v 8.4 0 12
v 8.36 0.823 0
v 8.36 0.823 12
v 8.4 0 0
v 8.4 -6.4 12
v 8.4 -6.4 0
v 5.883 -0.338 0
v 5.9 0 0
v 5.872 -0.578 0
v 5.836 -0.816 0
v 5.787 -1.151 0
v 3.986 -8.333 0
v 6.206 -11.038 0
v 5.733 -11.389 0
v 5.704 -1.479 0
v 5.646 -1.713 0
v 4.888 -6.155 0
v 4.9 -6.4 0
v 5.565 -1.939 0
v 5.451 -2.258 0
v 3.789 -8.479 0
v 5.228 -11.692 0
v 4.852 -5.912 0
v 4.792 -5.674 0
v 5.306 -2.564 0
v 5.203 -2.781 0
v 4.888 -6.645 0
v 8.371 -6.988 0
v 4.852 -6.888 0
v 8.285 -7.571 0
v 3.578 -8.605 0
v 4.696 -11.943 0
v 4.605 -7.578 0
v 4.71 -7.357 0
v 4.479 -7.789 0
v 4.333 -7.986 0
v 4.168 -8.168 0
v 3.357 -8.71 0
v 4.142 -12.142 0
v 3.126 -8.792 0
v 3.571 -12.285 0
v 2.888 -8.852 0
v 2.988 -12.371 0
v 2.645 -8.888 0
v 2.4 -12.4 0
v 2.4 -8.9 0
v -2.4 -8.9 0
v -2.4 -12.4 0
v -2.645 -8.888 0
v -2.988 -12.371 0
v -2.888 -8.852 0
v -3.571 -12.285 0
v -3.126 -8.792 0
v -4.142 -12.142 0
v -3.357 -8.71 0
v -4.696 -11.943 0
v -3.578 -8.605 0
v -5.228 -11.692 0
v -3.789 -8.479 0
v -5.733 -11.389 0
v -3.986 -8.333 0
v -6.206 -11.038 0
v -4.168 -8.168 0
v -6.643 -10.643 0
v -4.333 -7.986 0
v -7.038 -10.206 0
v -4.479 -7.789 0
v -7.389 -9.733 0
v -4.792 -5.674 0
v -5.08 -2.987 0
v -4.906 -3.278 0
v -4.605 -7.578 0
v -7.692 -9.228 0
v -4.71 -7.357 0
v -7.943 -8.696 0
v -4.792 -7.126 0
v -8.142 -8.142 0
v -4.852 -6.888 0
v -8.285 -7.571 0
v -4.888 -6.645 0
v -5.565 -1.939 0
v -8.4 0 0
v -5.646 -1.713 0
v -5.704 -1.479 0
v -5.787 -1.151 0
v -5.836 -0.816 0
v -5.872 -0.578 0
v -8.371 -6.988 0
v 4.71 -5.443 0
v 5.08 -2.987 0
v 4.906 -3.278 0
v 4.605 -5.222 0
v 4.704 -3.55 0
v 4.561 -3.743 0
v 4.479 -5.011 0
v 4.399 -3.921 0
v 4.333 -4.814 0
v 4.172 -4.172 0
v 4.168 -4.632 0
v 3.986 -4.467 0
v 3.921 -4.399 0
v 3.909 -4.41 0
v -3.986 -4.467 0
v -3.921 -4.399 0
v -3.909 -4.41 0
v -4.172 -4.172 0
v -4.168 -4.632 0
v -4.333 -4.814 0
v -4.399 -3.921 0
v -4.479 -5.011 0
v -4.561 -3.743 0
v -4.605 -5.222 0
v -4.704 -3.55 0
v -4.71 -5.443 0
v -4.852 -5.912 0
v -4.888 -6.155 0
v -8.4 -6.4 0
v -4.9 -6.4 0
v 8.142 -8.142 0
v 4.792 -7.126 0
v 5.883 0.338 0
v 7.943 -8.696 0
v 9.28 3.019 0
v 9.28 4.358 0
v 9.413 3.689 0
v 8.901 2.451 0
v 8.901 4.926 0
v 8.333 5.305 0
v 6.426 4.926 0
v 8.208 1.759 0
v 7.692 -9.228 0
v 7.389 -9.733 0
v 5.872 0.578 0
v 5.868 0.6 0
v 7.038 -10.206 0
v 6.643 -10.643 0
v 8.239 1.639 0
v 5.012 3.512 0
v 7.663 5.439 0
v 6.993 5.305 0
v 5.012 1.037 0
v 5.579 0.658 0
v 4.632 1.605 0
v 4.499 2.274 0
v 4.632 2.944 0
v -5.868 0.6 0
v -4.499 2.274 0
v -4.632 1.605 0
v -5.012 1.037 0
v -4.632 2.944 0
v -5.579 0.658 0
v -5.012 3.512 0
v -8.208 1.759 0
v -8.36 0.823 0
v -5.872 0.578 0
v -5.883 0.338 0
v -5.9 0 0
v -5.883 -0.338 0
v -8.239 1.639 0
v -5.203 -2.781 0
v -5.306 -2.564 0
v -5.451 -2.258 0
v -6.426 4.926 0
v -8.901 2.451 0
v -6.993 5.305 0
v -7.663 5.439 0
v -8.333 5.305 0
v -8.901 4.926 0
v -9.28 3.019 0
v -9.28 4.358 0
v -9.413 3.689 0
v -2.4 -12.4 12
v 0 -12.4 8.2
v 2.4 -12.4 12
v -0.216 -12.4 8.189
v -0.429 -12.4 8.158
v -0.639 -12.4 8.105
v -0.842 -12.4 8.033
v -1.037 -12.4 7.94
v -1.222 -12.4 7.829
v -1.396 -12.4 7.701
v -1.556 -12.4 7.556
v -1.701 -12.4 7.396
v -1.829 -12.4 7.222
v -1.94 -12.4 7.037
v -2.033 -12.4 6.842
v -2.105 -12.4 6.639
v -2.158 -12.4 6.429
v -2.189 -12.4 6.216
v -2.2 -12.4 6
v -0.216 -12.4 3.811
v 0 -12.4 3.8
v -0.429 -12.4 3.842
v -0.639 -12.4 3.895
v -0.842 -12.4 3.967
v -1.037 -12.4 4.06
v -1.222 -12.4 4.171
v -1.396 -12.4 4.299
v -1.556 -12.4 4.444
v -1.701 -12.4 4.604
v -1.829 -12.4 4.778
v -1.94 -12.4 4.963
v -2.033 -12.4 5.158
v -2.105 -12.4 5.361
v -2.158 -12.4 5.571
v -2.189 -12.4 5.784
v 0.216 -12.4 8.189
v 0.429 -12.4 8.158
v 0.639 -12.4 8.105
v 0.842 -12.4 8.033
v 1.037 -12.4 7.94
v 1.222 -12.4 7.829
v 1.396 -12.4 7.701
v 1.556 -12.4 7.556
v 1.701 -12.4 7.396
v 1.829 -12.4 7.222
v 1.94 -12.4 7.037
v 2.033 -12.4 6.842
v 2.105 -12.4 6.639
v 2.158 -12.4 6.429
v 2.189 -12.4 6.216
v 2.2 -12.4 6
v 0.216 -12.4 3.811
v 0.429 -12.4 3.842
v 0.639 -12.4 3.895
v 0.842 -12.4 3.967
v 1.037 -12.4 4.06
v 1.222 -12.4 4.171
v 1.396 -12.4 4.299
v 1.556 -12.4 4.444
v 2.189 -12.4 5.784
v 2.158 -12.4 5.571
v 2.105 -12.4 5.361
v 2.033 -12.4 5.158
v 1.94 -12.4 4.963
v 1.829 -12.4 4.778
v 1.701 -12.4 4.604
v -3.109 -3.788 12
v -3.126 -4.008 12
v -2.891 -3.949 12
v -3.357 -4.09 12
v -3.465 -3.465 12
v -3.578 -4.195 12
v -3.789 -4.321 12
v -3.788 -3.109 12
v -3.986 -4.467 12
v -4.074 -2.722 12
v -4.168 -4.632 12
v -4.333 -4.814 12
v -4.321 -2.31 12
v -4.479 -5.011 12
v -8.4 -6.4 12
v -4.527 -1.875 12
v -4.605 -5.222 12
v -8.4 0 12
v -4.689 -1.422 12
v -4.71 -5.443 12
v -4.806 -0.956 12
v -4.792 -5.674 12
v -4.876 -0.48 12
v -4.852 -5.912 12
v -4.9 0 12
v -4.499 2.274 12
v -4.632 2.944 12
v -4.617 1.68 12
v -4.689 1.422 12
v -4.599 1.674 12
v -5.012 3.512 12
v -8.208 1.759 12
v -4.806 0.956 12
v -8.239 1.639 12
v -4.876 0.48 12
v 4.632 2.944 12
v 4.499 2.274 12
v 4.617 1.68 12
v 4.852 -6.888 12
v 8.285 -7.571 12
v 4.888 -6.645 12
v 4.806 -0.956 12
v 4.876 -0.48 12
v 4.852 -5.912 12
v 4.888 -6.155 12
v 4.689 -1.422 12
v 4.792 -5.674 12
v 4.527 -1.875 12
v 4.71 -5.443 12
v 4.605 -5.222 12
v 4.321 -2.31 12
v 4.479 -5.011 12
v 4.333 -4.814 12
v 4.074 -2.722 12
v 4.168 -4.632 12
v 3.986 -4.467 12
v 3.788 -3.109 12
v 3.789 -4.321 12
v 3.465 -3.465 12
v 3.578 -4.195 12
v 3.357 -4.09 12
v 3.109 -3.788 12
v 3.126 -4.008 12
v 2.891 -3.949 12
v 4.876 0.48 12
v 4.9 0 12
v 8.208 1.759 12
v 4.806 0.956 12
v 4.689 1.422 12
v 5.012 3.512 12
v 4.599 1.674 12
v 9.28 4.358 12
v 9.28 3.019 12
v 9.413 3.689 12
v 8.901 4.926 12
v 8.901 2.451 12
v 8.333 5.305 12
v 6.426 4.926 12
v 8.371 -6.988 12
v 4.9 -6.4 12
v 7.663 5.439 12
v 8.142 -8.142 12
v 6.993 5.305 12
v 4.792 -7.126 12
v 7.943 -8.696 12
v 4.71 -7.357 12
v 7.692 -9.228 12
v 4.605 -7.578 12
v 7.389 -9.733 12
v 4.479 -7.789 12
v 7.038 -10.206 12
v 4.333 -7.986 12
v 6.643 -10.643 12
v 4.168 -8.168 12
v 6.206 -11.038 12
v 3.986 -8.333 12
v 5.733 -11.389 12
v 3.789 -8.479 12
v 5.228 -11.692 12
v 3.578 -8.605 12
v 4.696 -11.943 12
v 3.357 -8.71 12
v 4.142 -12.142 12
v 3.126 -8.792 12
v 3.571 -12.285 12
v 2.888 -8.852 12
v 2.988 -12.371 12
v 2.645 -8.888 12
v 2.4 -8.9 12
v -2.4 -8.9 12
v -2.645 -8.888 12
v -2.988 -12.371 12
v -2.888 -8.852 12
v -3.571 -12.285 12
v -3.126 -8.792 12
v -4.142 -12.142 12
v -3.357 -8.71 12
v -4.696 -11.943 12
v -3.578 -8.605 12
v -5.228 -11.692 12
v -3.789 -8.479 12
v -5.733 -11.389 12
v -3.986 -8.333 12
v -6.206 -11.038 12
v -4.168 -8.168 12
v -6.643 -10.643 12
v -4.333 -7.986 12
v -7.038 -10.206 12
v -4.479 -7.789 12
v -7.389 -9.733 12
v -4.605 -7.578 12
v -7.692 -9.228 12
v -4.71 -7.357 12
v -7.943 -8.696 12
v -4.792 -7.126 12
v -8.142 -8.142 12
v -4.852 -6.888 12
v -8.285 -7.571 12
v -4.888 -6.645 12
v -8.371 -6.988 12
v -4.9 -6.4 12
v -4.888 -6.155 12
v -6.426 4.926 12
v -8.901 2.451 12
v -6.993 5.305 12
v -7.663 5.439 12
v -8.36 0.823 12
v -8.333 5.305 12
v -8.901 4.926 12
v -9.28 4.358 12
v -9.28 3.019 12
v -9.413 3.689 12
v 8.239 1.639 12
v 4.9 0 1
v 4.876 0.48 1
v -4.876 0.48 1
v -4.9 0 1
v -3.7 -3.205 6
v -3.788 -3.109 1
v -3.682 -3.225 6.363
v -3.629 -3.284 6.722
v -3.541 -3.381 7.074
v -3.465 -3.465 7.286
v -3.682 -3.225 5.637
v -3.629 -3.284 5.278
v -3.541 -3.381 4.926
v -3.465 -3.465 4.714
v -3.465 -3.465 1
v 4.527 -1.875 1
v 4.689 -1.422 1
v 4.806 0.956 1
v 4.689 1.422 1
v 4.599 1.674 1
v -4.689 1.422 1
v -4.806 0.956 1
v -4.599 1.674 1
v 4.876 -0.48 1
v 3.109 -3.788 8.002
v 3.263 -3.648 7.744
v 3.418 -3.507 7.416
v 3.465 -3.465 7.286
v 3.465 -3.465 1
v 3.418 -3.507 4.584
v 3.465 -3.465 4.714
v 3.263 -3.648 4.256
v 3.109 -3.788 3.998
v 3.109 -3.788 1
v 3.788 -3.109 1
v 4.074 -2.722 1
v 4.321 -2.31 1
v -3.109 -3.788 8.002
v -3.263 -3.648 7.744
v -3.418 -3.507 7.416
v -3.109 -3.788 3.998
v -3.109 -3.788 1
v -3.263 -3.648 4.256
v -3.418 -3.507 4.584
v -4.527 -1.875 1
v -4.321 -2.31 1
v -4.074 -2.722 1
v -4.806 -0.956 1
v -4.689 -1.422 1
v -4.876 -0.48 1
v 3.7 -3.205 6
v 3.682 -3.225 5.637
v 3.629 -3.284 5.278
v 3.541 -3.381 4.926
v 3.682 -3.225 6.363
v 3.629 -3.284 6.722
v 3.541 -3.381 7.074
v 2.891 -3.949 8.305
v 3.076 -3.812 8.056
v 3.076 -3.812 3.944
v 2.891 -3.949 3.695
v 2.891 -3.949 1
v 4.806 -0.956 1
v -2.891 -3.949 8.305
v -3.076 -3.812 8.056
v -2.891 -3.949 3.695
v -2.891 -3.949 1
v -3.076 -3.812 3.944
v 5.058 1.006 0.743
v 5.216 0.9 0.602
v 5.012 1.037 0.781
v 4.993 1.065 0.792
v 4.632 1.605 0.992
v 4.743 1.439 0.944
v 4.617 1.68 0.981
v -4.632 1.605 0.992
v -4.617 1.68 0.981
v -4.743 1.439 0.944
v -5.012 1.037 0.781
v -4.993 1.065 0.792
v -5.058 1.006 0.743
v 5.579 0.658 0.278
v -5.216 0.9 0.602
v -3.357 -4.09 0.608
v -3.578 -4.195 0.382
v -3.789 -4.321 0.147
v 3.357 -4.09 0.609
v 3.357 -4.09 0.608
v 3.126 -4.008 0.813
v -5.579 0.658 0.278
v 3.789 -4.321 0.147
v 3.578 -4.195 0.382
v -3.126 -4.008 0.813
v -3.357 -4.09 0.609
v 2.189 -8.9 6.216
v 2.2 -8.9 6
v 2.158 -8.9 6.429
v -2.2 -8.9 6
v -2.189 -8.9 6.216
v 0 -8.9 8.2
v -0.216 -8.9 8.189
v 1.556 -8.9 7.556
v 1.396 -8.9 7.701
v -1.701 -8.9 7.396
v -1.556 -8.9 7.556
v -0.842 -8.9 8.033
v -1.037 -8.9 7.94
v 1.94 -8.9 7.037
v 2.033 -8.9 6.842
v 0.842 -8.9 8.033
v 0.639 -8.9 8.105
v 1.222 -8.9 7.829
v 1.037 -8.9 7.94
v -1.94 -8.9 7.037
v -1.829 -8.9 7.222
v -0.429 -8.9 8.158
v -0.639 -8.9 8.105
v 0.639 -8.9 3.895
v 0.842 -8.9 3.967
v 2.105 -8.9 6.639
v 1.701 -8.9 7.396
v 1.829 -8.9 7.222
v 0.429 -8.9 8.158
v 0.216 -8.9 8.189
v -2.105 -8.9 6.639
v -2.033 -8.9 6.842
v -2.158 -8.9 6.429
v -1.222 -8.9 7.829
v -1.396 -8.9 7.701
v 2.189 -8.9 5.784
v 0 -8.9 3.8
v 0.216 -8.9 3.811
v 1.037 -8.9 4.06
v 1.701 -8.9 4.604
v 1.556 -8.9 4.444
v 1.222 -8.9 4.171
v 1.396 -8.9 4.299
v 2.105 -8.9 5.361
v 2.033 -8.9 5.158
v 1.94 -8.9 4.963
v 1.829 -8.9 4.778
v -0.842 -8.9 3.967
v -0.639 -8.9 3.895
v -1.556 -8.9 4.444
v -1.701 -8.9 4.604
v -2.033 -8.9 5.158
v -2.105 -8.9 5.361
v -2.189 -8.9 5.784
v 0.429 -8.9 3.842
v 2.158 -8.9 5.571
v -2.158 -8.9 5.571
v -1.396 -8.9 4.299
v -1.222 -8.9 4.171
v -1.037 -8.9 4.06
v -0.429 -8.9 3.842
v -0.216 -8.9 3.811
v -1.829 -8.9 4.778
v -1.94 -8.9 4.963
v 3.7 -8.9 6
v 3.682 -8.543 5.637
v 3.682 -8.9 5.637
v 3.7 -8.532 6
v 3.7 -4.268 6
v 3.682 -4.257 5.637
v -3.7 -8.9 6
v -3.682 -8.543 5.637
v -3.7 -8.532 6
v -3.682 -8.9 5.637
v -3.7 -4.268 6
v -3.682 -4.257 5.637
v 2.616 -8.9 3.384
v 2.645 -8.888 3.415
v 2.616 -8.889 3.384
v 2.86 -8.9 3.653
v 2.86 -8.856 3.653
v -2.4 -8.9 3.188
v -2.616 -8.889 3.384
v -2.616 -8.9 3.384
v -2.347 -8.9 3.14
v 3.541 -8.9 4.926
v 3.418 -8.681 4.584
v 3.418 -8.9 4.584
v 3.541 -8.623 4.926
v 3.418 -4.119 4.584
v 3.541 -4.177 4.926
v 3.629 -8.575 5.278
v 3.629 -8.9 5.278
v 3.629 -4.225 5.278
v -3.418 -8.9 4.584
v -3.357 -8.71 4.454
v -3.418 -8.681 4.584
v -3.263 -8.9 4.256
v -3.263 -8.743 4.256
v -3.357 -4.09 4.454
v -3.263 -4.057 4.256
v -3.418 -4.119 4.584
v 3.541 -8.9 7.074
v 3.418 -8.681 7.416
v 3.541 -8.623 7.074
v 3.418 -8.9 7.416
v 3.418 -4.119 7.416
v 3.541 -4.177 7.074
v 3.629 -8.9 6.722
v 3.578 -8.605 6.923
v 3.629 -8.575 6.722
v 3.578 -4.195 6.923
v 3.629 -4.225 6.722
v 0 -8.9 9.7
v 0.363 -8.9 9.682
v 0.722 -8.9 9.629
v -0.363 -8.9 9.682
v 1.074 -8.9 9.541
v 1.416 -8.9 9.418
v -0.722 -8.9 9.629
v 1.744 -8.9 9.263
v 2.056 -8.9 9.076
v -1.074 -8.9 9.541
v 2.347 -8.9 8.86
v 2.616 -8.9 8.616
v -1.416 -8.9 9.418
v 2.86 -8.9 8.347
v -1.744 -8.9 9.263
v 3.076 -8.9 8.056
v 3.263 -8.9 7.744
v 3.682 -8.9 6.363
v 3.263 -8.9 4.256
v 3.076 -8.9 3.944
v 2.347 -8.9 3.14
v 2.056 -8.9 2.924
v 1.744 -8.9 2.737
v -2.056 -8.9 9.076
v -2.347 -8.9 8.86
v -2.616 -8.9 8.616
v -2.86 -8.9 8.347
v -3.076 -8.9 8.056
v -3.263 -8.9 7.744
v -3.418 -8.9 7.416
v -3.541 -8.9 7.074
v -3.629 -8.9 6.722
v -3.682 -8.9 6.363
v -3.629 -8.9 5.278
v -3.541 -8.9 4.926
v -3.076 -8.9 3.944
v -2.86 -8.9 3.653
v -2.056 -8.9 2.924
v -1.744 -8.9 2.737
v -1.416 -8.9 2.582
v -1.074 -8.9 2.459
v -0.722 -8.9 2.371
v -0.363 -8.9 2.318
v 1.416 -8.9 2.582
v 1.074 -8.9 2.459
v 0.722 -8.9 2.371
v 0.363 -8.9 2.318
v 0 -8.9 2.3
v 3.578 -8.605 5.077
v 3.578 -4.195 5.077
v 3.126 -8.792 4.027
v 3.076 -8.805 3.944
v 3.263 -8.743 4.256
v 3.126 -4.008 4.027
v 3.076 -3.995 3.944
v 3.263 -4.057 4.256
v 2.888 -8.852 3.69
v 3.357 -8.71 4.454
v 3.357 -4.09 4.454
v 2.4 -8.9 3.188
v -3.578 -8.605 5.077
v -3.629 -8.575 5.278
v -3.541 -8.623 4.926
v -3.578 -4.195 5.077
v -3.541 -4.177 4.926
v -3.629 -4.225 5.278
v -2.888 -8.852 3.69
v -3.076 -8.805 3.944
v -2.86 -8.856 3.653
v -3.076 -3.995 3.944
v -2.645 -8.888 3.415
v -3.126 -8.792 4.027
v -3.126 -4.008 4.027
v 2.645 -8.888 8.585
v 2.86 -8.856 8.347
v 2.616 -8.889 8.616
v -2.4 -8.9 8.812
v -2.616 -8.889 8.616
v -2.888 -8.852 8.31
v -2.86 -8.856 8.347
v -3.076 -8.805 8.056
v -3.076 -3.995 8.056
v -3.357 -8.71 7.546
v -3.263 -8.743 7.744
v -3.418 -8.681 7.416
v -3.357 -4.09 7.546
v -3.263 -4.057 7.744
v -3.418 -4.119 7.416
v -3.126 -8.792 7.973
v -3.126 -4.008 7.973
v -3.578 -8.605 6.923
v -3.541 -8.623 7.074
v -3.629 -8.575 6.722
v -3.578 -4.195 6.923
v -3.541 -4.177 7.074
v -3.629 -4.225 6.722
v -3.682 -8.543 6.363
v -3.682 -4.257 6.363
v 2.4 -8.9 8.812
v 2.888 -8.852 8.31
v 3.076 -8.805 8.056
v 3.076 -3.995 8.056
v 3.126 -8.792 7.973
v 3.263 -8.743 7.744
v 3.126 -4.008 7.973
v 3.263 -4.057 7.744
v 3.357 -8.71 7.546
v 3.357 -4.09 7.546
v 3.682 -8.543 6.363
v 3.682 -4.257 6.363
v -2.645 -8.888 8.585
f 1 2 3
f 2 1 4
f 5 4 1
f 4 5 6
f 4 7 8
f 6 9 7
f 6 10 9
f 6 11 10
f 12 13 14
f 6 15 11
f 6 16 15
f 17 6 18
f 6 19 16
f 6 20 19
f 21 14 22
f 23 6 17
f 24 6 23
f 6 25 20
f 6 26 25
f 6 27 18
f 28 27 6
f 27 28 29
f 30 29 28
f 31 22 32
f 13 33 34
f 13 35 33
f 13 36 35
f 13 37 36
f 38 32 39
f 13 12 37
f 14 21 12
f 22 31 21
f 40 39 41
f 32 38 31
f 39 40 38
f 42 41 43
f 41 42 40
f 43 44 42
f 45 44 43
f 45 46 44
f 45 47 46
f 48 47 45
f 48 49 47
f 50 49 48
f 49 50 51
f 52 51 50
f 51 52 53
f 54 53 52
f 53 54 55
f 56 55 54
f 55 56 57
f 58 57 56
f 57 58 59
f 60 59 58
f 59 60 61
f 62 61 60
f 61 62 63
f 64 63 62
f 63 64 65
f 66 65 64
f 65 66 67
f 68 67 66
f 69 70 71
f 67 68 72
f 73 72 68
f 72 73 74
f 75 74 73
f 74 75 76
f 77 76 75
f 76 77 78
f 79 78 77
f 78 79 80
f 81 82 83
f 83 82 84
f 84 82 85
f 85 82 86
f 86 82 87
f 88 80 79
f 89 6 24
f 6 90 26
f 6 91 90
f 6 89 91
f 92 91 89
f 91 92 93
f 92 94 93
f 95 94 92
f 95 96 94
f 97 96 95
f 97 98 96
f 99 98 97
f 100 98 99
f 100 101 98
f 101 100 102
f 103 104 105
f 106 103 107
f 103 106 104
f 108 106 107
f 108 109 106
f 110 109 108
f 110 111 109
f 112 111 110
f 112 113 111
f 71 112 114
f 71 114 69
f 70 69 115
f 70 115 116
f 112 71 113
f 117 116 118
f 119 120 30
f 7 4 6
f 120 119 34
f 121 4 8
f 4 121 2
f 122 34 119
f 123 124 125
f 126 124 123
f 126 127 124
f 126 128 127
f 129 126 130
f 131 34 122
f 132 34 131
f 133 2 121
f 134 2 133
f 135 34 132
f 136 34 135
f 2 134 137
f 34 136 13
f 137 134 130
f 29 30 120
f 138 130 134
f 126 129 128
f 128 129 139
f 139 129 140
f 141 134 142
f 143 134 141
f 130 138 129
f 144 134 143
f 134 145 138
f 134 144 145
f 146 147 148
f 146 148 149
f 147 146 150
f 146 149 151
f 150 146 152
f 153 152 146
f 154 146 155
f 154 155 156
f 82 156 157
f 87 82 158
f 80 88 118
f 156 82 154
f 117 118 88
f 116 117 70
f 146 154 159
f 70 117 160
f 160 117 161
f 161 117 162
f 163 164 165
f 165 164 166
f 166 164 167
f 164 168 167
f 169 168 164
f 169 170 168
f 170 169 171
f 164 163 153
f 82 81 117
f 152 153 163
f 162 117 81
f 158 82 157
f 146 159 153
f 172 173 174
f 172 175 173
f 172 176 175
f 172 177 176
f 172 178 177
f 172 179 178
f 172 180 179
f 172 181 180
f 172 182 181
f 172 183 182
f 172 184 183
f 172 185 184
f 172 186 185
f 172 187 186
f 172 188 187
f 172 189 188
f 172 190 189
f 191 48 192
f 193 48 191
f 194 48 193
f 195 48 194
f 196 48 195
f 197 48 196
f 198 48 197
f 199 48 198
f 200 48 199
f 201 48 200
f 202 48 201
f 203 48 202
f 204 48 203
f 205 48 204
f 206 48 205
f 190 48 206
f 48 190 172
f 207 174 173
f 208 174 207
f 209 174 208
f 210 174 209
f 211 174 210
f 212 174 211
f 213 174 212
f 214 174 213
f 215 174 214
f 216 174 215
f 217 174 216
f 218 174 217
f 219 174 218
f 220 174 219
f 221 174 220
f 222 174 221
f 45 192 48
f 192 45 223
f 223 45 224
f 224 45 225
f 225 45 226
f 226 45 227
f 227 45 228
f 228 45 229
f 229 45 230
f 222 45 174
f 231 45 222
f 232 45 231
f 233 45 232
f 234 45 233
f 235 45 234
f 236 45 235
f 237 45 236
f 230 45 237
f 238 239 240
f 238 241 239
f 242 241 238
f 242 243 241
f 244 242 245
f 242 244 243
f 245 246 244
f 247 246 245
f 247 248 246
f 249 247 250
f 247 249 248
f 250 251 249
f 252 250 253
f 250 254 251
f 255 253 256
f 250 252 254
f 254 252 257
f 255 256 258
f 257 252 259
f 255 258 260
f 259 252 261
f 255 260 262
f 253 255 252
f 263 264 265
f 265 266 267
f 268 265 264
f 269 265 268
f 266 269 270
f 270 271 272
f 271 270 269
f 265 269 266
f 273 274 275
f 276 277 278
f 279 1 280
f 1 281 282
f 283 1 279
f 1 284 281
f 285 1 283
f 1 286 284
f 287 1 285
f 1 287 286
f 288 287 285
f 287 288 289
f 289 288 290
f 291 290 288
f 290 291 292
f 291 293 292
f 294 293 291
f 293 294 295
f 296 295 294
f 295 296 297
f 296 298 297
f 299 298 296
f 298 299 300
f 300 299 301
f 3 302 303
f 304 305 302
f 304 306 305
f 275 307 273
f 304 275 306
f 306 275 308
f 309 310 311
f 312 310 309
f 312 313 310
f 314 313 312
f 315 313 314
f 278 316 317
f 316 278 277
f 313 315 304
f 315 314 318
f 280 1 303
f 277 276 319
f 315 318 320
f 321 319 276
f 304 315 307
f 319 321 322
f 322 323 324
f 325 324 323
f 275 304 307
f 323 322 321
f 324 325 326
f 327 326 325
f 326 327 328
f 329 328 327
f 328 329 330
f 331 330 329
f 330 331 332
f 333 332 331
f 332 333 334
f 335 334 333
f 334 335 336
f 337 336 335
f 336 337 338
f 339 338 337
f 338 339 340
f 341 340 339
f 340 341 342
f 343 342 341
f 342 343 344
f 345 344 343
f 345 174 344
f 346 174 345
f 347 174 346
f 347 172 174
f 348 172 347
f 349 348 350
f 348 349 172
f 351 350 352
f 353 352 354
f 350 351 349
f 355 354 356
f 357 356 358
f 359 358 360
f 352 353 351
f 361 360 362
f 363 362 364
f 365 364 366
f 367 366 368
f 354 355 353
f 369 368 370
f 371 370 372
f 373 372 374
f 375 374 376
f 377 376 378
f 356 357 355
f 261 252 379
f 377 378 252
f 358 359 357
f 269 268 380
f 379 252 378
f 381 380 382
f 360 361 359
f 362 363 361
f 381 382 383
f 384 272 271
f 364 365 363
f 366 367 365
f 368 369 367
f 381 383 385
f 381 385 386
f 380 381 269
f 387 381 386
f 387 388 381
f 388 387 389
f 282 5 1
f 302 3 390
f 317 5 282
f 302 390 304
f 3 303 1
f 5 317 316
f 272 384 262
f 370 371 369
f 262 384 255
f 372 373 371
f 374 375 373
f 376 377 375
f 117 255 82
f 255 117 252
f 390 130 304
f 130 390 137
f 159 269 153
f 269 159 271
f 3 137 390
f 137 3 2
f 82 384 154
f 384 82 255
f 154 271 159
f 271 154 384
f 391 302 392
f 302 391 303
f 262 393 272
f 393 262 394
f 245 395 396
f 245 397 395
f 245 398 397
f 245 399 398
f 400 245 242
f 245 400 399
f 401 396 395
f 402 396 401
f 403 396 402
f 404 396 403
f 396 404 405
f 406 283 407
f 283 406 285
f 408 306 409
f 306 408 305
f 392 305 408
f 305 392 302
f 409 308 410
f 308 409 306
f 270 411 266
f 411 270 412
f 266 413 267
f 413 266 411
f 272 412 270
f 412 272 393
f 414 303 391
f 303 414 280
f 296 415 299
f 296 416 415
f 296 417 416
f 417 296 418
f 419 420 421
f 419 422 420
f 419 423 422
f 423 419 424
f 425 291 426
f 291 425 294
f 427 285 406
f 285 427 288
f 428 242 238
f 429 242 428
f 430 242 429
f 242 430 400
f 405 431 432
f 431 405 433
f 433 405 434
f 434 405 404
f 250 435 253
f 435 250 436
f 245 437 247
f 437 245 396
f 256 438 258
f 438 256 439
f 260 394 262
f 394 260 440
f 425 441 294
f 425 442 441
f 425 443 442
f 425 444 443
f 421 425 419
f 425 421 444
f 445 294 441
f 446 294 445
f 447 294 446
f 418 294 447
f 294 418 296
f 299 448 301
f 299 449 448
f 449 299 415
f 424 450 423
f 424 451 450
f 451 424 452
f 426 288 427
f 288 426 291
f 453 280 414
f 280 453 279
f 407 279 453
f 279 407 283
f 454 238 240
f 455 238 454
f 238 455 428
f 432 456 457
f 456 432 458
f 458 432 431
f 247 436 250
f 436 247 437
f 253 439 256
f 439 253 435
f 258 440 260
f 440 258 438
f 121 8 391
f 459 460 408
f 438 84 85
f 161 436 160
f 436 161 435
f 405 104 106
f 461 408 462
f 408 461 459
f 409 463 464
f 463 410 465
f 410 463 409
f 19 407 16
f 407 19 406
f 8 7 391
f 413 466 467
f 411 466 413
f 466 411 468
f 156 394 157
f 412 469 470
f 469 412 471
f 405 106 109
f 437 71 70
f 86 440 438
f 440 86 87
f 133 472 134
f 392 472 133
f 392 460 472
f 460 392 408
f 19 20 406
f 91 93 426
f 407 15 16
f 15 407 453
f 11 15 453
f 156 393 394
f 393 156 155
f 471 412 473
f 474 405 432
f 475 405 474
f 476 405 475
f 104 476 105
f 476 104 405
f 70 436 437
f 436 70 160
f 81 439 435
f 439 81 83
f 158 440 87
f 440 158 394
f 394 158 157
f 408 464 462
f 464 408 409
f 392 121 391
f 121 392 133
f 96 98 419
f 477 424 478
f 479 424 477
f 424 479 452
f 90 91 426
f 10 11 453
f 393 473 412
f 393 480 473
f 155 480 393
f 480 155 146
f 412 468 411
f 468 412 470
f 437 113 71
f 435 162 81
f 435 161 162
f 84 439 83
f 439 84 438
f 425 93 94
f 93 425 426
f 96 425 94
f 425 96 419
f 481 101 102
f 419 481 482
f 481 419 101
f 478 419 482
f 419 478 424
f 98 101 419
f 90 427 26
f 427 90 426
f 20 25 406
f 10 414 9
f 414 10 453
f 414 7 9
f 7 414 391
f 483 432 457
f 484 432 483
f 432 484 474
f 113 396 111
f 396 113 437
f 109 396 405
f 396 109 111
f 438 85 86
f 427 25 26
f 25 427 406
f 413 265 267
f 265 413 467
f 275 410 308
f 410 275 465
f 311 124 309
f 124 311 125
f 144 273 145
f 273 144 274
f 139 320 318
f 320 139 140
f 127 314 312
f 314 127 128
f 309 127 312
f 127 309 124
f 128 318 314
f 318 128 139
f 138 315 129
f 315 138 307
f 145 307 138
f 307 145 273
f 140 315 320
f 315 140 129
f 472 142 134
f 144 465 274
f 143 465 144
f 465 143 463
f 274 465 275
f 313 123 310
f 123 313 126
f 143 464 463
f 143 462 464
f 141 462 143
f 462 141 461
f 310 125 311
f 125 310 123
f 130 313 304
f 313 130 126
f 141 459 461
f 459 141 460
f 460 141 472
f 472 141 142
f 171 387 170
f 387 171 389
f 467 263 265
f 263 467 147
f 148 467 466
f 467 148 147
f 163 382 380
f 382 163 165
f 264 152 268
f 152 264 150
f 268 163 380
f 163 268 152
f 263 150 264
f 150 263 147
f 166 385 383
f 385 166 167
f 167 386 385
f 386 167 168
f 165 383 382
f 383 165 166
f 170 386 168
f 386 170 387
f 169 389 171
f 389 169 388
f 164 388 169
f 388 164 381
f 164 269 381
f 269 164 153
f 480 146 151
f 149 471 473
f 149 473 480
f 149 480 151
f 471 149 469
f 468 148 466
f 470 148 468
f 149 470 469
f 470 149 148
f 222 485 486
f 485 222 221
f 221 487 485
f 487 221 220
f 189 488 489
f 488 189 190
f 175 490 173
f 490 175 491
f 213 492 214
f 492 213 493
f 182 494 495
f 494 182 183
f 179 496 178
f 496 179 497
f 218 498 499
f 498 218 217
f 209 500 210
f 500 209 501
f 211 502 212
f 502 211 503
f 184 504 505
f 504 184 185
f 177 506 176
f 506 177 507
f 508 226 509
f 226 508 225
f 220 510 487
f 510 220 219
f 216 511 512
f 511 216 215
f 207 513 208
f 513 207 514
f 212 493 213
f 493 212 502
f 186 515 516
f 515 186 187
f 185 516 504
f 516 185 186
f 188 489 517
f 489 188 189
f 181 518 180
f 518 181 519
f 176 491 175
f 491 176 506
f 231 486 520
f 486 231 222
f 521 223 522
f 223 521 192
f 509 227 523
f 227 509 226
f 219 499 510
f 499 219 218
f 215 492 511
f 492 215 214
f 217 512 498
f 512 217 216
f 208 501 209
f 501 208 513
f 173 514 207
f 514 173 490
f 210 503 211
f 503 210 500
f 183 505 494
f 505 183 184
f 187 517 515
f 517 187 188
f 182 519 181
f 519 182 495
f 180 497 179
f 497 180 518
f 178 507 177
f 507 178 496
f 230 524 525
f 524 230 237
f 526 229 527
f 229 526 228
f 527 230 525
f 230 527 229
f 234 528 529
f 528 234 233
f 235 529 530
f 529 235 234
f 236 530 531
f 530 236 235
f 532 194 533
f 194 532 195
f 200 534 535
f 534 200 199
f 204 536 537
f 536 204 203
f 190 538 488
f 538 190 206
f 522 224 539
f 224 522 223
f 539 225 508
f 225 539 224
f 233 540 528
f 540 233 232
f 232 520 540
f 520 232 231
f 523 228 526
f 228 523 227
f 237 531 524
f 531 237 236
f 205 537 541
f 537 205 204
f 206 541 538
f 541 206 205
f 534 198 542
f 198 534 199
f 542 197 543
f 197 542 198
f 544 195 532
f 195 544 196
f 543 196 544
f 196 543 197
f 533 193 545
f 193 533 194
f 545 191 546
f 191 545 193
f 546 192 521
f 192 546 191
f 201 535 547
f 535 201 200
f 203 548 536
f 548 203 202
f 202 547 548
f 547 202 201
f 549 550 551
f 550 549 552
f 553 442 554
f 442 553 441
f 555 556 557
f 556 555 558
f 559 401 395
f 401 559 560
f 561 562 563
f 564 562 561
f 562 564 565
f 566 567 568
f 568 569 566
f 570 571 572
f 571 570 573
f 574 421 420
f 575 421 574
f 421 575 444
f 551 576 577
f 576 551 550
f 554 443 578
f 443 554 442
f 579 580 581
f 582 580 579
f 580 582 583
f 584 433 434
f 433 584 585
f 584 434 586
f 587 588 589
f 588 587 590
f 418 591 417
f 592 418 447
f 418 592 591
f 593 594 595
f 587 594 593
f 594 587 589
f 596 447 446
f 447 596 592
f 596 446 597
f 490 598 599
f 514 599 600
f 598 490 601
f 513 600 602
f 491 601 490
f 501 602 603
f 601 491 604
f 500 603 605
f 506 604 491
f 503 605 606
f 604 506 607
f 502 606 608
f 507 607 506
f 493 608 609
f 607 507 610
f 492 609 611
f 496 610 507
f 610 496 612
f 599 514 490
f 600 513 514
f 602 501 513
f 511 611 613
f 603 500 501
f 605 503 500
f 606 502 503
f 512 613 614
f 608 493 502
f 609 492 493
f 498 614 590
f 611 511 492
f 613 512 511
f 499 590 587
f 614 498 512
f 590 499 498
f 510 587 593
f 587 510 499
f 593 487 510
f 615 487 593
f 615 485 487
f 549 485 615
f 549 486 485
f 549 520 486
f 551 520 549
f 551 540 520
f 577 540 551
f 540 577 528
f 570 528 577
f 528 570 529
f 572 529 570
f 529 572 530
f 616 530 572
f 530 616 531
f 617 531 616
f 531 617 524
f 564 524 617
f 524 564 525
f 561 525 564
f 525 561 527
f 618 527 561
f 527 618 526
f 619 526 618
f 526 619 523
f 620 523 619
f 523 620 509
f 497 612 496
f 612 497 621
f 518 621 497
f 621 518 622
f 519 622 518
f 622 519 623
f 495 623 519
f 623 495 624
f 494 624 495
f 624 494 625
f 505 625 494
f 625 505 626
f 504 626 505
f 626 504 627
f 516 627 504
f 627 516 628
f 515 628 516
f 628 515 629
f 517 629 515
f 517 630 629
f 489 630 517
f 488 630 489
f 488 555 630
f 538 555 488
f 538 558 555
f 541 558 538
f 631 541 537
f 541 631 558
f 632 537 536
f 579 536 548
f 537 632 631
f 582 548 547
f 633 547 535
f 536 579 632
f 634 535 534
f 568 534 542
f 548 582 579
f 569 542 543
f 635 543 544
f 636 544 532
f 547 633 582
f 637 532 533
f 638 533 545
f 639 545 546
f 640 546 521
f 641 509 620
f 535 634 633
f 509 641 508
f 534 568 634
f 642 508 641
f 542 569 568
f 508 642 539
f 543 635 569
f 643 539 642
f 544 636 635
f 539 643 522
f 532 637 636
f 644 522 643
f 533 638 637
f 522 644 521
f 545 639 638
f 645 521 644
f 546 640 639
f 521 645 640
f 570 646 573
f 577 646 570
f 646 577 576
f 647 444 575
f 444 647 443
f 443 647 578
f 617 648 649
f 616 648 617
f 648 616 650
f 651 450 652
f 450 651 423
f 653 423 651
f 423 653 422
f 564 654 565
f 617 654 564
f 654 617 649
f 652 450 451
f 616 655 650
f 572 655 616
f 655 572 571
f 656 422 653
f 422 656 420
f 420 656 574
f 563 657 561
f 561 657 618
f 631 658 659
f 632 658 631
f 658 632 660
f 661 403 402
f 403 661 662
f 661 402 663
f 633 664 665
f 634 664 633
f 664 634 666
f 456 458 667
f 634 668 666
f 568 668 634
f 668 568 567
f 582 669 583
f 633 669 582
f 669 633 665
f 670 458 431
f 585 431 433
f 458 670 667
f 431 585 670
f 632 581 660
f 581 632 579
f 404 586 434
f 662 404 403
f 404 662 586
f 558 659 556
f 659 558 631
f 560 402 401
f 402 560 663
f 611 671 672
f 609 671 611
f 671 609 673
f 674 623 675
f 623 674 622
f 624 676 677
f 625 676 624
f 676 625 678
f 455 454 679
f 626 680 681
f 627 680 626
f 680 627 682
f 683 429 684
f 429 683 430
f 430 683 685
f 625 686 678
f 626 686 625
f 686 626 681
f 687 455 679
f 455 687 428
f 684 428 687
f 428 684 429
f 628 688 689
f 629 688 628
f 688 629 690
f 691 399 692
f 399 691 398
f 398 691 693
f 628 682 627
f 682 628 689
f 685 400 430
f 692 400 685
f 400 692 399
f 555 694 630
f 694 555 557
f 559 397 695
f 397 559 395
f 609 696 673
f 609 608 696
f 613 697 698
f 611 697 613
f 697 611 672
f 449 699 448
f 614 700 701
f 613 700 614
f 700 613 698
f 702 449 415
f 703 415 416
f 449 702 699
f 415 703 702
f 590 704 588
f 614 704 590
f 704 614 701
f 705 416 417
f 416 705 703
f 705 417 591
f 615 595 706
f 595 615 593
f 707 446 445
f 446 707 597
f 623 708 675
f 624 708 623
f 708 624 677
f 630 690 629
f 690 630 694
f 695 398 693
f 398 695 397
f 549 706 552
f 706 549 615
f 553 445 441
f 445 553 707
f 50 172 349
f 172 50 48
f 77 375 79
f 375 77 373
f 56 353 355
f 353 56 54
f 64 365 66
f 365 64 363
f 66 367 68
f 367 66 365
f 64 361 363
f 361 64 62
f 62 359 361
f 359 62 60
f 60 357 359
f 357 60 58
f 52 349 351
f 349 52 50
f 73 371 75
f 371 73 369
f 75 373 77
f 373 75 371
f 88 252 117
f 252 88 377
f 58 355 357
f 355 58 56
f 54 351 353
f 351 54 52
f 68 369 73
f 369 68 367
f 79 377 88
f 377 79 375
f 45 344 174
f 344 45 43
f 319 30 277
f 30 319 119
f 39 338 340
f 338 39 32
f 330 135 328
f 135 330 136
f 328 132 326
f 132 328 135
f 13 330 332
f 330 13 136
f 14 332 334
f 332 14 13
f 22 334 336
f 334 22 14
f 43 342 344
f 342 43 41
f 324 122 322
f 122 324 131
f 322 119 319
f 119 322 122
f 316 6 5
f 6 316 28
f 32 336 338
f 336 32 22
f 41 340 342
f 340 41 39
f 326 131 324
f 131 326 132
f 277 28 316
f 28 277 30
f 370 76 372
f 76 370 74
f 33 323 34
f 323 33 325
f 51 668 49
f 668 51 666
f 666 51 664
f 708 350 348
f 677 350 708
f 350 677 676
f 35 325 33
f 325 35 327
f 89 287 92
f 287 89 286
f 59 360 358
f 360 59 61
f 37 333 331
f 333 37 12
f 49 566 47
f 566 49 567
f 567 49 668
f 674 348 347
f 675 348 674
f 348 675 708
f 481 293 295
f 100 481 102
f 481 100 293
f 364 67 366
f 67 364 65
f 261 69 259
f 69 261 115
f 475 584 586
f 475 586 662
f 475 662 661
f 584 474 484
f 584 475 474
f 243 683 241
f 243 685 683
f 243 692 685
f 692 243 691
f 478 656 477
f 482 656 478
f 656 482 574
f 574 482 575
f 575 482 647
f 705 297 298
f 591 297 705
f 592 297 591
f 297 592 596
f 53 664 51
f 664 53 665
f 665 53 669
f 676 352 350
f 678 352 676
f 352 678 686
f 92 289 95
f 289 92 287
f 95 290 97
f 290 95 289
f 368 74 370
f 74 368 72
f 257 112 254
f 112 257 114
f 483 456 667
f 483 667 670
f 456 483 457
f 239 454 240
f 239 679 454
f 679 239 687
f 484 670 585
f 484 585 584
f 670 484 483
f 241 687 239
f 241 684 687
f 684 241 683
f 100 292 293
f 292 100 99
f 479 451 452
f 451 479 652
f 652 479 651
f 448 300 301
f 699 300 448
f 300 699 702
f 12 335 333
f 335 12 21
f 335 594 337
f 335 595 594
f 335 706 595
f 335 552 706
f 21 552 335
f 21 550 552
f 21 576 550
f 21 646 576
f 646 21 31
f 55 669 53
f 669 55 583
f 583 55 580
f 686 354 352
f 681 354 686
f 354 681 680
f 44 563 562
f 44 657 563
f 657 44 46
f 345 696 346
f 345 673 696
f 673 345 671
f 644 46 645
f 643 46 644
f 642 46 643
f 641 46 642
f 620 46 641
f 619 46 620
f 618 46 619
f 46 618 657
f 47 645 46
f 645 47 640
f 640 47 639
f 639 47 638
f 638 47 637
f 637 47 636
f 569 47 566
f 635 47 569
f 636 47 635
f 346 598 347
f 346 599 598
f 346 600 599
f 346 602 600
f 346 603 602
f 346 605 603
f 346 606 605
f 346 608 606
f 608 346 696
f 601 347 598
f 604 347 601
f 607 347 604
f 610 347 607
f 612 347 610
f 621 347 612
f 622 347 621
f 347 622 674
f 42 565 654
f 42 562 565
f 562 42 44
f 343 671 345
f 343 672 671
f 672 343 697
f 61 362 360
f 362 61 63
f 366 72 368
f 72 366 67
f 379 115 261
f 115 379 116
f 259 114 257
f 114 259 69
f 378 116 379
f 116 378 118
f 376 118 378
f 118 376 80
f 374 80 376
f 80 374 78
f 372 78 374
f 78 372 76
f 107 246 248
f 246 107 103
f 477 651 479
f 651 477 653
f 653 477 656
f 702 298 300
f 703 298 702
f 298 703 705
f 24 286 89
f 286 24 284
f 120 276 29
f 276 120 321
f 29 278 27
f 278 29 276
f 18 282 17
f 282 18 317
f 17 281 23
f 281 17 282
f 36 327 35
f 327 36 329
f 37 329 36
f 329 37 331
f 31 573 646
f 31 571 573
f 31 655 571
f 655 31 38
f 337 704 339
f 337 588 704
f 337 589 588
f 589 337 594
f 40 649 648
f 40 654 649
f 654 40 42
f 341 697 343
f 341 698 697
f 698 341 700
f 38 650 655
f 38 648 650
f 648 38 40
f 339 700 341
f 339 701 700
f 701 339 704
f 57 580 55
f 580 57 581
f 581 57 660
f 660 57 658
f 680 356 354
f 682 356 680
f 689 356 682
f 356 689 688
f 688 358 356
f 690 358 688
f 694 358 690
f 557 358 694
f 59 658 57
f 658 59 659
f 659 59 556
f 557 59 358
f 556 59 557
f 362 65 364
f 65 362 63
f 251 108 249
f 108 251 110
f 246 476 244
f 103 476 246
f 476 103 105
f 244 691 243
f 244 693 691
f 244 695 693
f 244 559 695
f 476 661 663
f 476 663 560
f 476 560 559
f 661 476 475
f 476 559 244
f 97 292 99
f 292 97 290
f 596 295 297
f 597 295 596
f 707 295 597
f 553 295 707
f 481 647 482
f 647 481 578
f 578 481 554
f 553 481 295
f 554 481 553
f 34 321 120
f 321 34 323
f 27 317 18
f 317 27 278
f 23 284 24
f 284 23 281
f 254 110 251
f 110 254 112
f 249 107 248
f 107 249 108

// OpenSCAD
// file: cylinder_clip.scad
use <../utilities.scad>;

module cylinder_clip(r=1,t=3,opening_angle=120,wing_length=2,wing_angle=45,flat_w=10,flat_t=3,h=10,$fn=$fn){
	union(){
		difference(){
			hull(){
				cylinder(r=r+t,$fn=$fn,h=h);
				translate([-flat_w/2,-r-flat_t,0]) cube([flat_w,0.1,h]);
			}
			cylinder(r=r,$fn=$fn,h=99999,center=true);
			cylinder(r1=r+2,r2=r,$fn=$fn,h=2,center=true);
			scale([tan(opening_angle/2),1,1]) rotate([0,0,45]) translate([0,0,-1]) cube([1,1,1]*9999);
		}
		reflect([1,0,0]) translate([sin(opening_angle/2),cos(opening_angle/2),0]*(r+t/2)) hull() repeat([sin(wing_angle),cos(wing_angle),0]*wing_length,2)
			cylinder(r=t/2,h=h,$fn=16);
			
	}
}

//cylinder_clip(r=3,t=2,flat_w=6);
union(){
	cylinder_clip(r=21,t=4.5,flat_t=10,opening_angle=100,$fn=64);
	translate([-5,-22-5-20,0]) cube([10,20,10]);
}
// main file
use <../utilities.scad>;
use <./cylinder_clip.scad>;

$fn=64;
rack_r = 10/2-0.1;
t=3.5;
h=12;
standoff = 4+t;
cr = 2.5;

difference(){
	cylinder_clip(r=rack_r,t=t,flat_t=standoff,flat_w=2*rack_r+2*t,h=h,opening_angle=140);
	translate([0,-rack_r-standoff+t,h/2]){
		//screw_y(4,fudge=0.9,h=999,shaft=true,extraheight=0);
		rotate([90,0,0]) cylinder(r=2.2,h=999,center=true);
		rotate([-90,0,0]) cylinder(r=3.7,h=999);
	}
	reflect([1,0,0]) translate([-rack_r+cr,-rack_r-standoff+t+cr,-1]) difference(){
		mirror([1,0,0]) mirror([0,1,0]) cube([999,999,999]);
		cylinder(r=t+cr,h=999,center=true);
	}
	hull() reflect([1,0,0]) translate([-rack_r+cr,-rack_r-standoff+t+cr,0]) cylinder(r=cr,h=999,center=true);
    translate([-2.5,-rack_r-standoff+2*t,-1]) cube([5,9999,9999]);
}
